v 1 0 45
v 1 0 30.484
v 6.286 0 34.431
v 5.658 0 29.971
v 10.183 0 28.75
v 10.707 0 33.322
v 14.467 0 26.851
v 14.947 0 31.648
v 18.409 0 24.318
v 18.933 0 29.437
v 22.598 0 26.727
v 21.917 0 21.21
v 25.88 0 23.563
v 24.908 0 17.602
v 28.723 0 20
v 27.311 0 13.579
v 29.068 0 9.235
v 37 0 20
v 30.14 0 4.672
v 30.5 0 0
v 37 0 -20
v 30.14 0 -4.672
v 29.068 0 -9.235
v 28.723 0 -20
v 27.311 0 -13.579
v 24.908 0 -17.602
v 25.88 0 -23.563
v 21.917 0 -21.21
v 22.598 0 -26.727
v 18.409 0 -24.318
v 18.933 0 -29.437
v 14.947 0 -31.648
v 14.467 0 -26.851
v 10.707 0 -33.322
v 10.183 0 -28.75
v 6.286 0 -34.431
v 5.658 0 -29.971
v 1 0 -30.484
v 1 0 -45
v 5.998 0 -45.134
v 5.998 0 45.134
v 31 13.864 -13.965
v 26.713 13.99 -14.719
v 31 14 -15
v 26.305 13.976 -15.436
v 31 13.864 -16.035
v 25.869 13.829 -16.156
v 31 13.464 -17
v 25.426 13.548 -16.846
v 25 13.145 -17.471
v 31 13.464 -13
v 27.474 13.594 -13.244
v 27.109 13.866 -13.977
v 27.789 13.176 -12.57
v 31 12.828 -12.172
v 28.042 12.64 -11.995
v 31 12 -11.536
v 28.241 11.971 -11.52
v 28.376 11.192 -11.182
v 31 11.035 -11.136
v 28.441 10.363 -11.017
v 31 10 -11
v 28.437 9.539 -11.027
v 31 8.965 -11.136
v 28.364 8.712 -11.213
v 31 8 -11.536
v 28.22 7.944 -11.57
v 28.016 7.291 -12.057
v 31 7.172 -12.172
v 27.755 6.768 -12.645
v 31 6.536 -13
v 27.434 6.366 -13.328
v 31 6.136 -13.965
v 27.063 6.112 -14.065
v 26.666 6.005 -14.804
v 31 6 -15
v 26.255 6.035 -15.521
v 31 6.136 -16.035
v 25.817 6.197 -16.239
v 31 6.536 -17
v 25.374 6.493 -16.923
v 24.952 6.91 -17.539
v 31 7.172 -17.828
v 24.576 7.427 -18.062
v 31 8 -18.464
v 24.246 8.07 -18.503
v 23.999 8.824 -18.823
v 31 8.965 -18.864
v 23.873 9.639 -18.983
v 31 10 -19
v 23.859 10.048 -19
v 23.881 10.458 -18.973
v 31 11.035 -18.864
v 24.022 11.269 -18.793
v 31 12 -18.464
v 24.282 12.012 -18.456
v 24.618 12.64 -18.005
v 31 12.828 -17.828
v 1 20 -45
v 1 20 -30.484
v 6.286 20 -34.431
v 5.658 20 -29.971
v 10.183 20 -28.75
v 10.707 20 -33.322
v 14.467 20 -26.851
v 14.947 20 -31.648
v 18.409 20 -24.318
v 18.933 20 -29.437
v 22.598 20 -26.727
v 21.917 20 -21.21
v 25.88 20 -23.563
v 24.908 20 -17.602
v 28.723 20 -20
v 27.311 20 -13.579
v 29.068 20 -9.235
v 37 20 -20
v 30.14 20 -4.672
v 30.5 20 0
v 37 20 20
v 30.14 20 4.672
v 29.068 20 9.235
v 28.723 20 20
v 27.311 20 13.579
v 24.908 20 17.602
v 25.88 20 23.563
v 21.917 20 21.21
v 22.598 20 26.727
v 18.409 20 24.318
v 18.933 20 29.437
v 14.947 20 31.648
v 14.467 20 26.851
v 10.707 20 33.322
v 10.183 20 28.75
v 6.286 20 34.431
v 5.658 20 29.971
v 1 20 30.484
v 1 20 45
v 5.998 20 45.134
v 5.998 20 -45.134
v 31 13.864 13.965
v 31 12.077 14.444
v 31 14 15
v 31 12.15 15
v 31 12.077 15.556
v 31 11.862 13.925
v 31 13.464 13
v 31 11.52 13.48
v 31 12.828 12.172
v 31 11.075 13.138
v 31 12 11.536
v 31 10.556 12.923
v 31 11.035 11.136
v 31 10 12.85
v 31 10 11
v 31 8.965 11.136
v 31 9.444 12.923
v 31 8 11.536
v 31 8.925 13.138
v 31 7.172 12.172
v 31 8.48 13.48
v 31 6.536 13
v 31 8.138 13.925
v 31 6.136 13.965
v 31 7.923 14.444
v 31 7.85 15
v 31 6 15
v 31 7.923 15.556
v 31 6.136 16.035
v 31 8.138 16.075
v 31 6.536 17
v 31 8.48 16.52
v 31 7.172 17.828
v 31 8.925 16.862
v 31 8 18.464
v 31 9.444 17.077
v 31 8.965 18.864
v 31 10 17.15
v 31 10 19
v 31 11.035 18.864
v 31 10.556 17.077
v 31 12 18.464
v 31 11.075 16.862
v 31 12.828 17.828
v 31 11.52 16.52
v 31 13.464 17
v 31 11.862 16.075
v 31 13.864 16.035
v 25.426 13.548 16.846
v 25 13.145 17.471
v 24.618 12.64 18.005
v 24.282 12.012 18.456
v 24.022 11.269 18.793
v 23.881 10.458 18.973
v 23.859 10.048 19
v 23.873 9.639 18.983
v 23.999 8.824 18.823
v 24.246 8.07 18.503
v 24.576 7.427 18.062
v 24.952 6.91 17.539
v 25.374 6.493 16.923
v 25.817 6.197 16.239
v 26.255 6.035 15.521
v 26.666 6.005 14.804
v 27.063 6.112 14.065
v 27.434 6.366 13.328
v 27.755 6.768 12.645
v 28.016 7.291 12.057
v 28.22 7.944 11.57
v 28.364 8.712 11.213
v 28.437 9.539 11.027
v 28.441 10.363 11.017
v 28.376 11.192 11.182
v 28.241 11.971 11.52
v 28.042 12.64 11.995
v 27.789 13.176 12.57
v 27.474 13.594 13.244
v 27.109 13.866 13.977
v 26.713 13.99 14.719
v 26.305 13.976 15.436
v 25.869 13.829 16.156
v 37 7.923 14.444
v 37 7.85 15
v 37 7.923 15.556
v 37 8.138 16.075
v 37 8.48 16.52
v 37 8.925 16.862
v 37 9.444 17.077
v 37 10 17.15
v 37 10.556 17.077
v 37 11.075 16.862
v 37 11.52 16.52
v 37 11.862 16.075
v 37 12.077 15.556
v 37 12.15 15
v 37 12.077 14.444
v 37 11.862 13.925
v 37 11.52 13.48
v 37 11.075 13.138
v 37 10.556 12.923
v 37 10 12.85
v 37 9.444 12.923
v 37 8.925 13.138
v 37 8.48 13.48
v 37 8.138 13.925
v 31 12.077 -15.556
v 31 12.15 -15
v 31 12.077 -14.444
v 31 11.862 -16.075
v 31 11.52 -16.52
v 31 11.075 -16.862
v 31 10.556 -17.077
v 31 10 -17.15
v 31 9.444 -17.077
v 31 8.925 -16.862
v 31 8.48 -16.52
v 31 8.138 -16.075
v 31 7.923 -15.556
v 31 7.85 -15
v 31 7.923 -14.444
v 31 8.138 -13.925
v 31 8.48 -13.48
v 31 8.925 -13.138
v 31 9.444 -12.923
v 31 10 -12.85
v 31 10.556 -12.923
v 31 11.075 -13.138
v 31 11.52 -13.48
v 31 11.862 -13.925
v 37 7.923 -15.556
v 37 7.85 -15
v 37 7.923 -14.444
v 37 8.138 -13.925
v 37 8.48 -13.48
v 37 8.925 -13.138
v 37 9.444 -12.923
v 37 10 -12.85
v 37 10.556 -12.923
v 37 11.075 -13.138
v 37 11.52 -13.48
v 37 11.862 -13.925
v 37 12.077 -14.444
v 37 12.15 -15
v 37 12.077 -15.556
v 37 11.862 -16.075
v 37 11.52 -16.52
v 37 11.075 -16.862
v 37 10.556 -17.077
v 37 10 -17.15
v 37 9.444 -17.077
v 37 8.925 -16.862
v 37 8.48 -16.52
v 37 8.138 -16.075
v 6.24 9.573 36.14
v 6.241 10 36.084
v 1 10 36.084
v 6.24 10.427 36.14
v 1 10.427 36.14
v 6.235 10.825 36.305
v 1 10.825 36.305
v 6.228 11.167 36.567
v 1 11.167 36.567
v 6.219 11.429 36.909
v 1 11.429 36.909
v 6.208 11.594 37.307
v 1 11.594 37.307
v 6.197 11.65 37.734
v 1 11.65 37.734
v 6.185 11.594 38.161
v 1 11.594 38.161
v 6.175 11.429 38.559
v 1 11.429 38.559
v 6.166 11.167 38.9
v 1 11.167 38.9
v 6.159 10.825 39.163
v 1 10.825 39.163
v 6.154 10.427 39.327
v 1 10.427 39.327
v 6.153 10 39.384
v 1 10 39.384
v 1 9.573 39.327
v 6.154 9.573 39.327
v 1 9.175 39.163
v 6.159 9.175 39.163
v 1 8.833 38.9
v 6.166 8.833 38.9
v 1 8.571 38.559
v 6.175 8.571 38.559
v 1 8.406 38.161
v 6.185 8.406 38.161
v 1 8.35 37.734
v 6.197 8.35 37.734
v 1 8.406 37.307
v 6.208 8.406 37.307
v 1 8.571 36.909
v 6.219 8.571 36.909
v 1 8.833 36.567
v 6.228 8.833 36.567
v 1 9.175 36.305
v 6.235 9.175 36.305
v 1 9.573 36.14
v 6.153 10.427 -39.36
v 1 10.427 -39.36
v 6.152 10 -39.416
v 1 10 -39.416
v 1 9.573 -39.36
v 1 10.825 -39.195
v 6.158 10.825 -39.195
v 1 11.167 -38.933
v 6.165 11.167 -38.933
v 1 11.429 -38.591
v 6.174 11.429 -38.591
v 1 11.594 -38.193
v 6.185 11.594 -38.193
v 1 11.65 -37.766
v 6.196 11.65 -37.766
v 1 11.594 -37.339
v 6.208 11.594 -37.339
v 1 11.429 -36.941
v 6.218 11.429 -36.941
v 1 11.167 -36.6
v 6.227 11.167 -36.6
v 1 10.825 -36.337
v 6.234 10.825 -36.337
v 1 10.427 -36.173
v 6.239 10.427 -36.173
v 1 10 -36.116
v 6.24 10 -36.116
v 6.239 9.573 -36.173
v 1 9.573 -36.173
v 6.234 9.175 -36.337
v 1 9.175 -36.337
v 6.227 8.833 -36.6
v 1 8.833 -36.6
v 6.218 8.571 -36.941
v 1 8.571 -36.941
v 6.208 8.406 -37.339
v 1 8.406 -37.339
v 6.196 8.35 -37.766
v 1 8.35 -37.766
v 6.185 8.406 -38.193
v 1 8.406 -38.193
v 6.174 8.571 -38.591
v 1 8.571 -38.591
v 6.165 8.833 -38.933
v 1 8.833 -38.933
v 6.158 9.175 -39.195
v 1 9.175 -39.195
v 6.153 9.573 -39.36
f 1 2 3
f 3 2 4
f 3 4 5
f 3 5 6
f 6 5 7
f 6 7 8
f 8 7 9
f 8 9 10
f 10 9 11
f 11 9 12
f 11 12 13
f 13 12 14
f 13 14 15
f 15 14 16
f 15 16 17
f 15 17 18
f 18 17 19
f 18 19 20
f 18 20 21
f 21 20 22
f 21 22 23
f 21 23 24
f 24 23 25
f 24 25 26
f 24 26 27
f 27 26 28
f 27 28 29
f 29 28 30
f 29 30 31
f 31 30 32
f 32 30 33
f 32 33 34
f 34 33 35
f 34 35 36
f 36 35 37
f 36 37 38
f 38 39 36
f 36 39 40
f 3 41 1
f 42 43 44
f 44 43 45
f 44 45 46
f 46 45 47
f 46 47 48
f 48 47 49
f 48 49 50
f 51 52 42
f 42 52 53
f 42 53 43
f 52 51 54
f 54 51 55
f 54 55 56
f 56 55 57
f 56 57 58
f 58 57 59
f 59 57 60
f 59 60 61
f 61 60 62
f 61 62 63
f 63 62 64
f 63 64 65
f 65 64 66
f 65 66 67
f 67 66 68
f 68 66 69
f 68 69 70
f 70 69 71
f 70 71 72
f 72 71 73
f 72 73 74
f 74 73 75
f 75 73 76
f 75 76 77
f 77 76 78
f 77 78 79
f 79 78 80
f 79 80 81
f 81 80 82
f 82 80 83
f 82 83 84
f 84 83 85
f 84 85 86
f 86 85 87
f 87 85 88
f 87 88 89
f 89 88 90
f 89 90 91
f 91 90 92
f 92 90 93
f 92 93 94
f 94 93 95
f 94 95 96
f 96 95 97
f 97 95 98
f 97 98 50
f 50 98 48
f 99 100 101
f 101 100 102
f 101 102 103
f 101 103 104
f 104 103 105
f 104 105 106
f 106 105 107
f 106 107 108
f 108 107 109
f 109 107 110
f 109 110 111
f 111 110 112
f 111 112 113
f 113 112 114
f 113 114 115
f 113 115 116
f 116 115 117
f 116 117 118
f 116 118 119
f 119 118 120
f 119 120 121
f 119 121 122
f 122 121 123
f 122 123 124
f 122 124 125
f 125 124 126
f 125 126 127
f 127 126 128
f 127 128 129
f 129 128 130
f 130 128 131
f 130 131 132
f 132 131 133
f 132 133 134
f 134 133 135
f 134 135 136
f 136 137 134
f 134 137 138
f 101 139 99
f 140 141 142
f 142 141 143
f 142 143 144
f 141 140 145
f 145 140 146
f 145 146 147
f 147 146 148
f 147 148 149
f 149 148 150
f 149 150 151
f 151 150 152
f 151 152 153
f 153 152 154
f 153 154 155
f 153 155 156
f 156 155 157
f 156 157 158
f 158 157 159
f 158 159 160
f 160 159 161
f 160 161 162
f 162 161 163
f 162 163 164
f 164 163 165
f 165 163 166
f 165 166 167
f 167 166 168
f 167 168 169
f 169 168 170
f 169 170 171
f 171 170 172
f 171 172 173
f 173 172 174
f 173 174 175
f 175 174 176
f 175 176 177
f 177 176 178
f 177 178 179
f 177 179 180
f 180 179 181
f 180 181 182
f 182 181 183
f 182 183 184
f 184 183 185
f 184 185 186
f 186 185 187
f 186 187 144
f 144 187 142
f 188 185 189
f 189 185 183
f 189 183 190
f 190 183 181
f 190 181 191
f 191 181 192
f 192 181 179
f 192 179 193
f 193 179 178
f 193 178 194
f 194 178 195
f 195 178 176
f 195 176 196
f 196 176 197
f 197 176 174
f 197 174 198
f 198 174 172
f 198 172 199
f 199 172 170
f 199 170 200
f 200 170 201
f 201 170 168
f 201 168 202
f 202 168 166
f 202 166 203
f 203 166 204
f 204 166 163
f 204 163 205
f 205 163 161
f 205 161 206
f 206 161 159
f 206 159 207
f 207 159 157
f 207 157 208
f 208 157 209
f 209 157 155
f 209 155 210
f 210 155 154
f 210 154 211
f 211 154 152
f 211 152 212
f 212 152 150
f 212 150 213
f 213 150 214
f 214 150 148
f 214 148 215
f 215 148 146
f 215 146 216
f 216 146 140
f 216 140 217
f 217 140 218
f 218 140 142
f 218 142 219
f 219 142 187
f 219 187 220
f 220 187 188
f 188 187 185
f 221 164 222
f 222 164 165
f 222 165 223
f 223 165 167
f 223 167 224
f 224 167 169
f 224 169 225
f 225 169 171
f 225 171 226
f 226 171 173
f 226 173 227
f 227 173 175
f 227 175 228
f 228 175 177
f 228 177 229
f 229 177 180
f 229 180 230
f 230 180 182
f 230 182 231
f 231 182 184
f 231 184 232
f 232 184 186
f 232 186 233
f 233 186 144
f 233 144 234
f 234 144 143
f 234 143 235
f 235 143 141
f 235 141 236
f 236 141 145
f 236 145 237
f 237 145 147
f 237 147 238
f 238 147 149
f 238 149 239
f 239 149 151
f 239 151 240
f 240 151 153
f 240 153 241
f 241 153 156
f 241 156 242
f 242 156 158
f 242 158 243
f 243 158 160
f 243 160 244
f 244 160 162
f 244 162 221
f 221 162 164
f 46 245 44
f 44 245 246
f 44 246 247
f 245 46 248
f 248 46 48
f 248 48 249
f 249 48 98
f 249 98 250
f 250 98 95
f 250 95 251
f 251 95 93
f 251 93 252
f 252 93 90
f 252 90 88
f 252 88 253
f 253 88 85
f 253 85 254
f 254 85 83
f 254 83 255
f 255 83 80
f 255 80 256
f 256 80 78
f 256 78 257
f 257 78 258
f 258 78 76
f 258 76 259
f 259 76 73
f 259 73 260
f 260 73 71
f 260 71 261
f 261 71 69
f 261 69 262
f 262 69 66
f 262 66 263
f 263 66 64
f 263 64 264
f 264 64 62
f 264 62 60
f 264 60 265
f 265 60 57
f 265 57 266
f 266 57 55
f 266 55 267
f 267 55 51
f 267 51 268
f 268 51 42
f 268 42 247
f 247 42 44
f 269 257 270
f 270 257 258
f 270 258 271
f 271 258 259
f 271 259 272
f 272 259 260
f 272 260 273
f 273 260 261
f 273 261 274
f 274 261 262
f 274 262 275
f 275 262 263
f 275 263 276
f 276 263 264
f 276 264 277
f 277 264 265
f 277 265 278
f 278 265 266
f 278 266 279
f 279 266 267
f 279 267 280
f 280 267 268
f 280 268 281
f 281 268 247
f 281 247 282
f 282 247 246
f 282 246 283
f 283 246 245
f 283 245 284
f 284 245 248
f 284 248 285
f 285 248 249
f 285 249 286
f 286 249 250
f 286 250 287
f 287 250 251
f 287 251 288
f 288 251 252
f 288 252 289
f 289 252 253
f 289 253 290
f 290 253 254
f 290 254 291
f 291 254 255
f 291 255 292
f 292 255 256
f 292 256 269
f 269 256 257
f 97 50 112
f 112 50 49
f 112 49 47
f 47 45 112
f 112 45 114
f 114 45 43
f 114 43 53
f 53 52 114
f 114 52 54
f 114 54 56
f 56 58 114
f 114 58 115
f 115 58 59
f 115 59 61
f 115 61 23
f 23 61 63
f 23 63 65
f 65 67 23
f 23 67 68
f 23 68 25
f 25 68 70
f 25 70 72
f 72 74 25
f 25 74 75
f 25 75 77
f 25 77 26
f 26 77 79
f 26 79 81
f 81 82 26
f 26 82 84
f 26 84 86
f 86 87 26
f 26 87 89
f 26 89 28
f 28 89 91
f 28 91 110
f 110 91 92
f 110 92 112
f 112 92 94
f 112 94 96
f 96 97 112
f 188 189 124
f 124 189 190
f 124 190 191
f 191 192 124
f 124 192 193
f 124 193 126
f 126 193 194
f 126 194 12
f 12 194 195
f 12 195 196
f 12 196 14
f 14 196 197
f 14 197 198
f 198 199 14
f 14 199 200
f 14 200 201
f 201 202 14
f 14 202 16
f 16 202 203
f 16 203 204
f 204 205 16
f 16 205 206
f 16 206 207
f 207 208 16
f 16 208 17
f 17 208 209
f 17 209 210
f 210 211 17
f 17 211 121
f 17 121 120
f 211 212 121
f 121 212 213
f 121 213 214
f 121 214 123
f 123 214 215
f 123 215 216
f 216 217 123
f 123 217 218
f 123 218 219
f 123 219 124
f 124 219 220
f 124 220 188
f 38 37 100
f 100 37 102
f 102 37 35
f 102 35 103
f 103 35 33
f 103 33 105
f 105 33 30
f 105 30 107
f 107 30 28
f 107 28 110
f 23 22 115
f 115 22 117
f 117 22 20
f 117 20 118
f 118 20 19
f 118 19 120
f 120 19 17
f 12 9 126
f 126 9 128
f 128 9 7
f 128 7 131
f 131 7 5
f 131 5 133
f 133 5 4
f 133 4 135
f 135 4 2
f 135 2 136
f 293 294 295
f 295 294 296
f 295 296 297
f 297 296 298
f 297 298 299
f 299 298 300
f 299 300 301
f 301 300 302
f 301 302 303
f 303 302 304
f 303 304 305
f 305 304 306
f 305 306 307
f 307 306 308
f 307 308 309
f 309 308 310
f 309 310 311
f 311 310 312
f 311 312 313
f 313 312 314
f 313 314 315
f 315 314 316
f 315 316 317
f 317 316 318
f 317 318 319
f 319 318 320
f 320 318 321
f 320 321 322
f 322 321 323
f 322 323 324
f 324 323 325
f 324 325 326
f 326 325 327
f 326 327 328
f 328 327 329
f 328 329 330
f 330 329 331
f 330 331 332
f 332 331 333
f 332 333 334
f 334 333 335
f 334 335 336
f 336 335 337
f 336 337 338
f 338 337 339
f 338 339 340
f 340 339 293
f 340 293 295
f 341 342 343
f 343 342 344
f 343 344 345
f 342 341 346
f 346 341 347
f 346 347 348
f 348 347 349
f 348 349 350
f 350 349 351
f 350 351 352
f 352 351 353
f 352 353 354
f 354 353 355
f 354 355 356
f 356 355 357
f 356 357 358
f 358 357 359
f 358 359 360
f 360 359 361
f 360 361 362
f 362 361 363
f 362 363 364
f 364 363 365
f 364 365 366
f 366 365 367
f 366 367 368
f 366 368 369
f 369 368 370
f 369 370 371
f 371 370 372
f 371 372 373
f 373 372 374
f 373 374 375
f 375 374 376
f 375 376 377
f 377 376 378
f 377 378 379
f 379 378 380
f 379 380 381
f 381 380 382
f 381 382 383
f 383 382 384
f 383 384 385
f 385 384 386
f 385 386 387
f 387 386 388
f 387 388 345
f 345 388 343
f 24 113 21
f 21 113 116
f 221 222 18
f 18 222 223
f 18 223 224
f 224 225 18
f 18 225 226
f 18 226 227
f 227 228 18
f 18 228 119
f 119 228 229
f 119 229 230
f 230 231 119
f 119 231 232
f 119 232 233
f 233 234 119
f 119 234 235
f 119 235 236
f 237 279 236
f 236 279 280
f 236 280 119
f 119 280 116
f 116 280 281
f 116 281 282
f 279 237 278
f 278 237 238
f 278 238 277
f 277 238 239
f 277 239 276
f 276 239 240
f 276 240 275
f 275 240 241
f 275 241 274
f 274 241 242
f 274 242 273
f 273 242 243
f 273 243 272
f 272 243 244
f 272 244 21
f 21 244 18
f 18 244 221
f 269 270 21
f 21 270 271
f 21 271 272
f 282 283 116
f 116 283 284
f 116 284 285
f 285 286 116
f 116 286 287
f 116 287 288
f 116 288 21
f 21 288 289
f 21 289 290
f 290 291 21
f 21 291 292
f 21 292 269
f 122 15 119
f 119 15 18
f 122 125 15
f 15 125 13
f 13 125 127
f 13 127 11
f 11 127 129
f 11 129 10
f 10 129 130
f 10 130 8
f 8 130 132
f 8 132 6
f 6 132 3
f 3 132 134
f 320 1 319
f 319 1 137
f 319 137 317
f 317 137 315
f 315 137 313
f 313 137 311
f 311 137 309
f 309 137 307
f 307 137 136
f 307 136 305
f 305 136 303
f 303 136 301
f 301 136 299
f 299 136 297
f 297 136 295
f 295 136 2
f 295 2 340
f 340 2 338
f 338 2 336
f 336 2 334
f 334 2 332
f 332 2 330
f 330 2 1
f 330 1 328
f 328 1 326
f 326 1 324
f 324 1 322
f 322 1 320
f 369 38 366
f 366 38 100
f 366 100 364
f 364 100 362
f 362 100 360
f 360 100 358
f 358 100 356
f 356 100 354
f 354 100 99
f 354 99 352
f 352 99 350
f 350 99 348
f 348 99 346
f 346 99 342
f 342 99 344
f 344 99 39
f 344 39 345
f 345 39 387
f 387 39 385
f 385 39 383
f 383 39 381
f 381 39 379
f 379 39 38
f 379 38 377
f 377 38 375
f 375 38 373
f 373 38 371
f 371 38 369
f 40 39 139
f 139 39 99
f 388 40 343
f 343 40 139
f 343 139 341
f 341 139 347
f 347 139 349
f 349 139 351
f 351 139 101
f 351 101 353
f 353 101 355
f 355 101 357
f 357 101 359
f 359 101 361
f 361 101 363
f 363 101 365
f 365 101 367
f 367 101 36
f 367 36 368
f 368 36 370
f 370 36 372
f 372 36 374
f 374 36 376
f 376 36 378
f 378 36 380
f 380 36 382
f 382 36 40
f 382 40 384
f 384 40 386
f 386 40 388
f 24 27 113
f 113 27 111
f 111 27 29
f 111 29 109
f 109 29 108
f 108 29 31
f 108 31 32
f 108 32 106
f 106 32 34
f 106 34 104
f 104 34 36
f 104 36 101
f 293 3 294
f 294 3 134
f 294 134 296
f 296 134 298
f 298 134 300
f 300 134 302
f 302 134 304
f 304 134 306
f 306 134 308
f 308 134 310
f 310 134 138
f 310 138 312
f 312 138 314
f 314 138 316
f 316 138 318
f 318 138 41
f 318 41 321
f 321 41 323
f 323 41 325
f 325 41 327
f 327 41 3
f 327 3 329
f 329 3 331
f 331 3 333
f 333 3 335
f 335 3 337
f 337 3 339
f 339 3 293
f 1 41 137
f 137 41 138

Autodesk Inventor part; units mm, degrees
ref_plane "YZ Plane" through (0, 0, 0) normal (1, 0, 0) x (0, 1, 0)
ref_plane "XZ Plane" through (0, 0, 0) normal (0, 1, 0) x (-1, 0, 0)
ref_plane "XY Plane" through (0, 0, 0) normal (0, 0, 1) x (1, 0, 0)
sketch "Skizze1" plane through (0, 0, 0) normal (0, 1, 0) x (-1, 0, 0)
  arc A0 (-1, 30.4836) -> (-30.5, 0) centre (0, 0) ccw
  arc A1 (-6.2857, 34.431) -> (-35, 0) centre (0, 0) ccw
  line L0 (-1, 45) -> (-5.9982, 45.1342)
  line L1 (-5.9982, 45.1342) -> (-6.2857, 34.431)
  line L2 (0, 0) -> (-14.1914, 0) construction
  line L3 (-1, 30.4836) -> (-1, 45)
  arc A2 (-30.5, 0) -> (-1, -30.4836) centre (0, 0) ccw
  arc A3 (-35, 0) -> (-6.2857, -34.431) centre (0, 0) ccw
  line L4 (-1, -45) -> (-5.9982, -45.1342)
  line L5 (-5.9982, -45.1342) -> (-6.2857, -34.431)
  line L6 (-1, -30.4836) -> (-1, -45)
  dimension "d59" = 30.5
  dimension "d60" = 35
  dimension "d72" = 1
  dimension "d73" = 5
  dimension "d74" = 45
  dimension "d75" = 10.7071
extrude "Extrusion1" add sketch "Skizze1" along normal blind 20
ref_plane "Arbeitsebene1" through (35, 20, 0) normal (1, 0, 0) x (0, 1, 0)
sketch "Skizze3" plane through (35, 20, 0) normal (1, 0, 0) x (0, 1, 0)
  line L0 (0, -30.4836) -> (0, 30.4836) projected
  line L1 (0, 20) -> (-20, 20)
  line L2 (-20, 20) -> (-20, -20)
  line L3 (-20, -20) -> (0, -20)
  line L4 (0, -20) -> (0, 20)
  point P0 (-20, 0)
  dimension "d28" = 20
  dimension "d30" = 20
  dimension "d31" = 20
extrude "Extrusion2" add sketch "Skizze3" against normal blind 10 and the other way blind 2
sketch "Skizze5" plane through (1, 0, 30.4836) normal (-1, 0, 0) x (0, 0, 1)
  line L0 (14.5, 0) -> (14.5, 20) construction
  line L1 (14.5, 10) -> (-75.5, 10) construction
  line L2 (-75.5, 0) -> (-75.5, 20) construction
  line L3 (-75.5, 20) -> (-61, 20) construction
  line L4 (-68.25, 20) -> (-68.25, 0) construction
  line L5 (-61, 0) -> (-75.5, 0) construction
  line L6 (0, 20) -> (14.5, 20) construction
  line L7 (7.25, 20) -> (7.25, 0) construction
  line L8 (14.5, 0) -> (0, 0) construction
  point P0 (-30.5, 0)
  point P1 (7.25, 10)
  point P2 (-68.25, 10)
hole "Bohrung3" at (1, 10, 37.7336) at (1, 10, -37.7664) direction (1, 0, 0) diameter 3.3 end through all
ref_plane "Arbeitsebene2" through (23, 20, 0) normal (1, 0, 0) x (0, 1, 0)
sketch "Skizze7" plane through (23, 20, 0) normal (1, 0, 0) x (0, 1, 0)
  line L0 (0, 30.4836) -> (0, -30.4836) projected
  point P0 (-20, 0)
  point P1 (-10, 15)
  point P2 (-10, -15)
  dimension "d81" = 10
  dimension "d82" = 10
  dimension "d84" = 15
  dimension "d94" = 15
hole "Bohrung4" at (23, 10, 15) at (23, 10, -15) direction (1, 0, 0) diameter 4.3 end through all counterbore diameter 8 counterbore depth 8
delete faces "Fläche löschen1" heal yes whole lump no faces at (25, 2.4288, 4.0204)
properties part number "spannringe"
